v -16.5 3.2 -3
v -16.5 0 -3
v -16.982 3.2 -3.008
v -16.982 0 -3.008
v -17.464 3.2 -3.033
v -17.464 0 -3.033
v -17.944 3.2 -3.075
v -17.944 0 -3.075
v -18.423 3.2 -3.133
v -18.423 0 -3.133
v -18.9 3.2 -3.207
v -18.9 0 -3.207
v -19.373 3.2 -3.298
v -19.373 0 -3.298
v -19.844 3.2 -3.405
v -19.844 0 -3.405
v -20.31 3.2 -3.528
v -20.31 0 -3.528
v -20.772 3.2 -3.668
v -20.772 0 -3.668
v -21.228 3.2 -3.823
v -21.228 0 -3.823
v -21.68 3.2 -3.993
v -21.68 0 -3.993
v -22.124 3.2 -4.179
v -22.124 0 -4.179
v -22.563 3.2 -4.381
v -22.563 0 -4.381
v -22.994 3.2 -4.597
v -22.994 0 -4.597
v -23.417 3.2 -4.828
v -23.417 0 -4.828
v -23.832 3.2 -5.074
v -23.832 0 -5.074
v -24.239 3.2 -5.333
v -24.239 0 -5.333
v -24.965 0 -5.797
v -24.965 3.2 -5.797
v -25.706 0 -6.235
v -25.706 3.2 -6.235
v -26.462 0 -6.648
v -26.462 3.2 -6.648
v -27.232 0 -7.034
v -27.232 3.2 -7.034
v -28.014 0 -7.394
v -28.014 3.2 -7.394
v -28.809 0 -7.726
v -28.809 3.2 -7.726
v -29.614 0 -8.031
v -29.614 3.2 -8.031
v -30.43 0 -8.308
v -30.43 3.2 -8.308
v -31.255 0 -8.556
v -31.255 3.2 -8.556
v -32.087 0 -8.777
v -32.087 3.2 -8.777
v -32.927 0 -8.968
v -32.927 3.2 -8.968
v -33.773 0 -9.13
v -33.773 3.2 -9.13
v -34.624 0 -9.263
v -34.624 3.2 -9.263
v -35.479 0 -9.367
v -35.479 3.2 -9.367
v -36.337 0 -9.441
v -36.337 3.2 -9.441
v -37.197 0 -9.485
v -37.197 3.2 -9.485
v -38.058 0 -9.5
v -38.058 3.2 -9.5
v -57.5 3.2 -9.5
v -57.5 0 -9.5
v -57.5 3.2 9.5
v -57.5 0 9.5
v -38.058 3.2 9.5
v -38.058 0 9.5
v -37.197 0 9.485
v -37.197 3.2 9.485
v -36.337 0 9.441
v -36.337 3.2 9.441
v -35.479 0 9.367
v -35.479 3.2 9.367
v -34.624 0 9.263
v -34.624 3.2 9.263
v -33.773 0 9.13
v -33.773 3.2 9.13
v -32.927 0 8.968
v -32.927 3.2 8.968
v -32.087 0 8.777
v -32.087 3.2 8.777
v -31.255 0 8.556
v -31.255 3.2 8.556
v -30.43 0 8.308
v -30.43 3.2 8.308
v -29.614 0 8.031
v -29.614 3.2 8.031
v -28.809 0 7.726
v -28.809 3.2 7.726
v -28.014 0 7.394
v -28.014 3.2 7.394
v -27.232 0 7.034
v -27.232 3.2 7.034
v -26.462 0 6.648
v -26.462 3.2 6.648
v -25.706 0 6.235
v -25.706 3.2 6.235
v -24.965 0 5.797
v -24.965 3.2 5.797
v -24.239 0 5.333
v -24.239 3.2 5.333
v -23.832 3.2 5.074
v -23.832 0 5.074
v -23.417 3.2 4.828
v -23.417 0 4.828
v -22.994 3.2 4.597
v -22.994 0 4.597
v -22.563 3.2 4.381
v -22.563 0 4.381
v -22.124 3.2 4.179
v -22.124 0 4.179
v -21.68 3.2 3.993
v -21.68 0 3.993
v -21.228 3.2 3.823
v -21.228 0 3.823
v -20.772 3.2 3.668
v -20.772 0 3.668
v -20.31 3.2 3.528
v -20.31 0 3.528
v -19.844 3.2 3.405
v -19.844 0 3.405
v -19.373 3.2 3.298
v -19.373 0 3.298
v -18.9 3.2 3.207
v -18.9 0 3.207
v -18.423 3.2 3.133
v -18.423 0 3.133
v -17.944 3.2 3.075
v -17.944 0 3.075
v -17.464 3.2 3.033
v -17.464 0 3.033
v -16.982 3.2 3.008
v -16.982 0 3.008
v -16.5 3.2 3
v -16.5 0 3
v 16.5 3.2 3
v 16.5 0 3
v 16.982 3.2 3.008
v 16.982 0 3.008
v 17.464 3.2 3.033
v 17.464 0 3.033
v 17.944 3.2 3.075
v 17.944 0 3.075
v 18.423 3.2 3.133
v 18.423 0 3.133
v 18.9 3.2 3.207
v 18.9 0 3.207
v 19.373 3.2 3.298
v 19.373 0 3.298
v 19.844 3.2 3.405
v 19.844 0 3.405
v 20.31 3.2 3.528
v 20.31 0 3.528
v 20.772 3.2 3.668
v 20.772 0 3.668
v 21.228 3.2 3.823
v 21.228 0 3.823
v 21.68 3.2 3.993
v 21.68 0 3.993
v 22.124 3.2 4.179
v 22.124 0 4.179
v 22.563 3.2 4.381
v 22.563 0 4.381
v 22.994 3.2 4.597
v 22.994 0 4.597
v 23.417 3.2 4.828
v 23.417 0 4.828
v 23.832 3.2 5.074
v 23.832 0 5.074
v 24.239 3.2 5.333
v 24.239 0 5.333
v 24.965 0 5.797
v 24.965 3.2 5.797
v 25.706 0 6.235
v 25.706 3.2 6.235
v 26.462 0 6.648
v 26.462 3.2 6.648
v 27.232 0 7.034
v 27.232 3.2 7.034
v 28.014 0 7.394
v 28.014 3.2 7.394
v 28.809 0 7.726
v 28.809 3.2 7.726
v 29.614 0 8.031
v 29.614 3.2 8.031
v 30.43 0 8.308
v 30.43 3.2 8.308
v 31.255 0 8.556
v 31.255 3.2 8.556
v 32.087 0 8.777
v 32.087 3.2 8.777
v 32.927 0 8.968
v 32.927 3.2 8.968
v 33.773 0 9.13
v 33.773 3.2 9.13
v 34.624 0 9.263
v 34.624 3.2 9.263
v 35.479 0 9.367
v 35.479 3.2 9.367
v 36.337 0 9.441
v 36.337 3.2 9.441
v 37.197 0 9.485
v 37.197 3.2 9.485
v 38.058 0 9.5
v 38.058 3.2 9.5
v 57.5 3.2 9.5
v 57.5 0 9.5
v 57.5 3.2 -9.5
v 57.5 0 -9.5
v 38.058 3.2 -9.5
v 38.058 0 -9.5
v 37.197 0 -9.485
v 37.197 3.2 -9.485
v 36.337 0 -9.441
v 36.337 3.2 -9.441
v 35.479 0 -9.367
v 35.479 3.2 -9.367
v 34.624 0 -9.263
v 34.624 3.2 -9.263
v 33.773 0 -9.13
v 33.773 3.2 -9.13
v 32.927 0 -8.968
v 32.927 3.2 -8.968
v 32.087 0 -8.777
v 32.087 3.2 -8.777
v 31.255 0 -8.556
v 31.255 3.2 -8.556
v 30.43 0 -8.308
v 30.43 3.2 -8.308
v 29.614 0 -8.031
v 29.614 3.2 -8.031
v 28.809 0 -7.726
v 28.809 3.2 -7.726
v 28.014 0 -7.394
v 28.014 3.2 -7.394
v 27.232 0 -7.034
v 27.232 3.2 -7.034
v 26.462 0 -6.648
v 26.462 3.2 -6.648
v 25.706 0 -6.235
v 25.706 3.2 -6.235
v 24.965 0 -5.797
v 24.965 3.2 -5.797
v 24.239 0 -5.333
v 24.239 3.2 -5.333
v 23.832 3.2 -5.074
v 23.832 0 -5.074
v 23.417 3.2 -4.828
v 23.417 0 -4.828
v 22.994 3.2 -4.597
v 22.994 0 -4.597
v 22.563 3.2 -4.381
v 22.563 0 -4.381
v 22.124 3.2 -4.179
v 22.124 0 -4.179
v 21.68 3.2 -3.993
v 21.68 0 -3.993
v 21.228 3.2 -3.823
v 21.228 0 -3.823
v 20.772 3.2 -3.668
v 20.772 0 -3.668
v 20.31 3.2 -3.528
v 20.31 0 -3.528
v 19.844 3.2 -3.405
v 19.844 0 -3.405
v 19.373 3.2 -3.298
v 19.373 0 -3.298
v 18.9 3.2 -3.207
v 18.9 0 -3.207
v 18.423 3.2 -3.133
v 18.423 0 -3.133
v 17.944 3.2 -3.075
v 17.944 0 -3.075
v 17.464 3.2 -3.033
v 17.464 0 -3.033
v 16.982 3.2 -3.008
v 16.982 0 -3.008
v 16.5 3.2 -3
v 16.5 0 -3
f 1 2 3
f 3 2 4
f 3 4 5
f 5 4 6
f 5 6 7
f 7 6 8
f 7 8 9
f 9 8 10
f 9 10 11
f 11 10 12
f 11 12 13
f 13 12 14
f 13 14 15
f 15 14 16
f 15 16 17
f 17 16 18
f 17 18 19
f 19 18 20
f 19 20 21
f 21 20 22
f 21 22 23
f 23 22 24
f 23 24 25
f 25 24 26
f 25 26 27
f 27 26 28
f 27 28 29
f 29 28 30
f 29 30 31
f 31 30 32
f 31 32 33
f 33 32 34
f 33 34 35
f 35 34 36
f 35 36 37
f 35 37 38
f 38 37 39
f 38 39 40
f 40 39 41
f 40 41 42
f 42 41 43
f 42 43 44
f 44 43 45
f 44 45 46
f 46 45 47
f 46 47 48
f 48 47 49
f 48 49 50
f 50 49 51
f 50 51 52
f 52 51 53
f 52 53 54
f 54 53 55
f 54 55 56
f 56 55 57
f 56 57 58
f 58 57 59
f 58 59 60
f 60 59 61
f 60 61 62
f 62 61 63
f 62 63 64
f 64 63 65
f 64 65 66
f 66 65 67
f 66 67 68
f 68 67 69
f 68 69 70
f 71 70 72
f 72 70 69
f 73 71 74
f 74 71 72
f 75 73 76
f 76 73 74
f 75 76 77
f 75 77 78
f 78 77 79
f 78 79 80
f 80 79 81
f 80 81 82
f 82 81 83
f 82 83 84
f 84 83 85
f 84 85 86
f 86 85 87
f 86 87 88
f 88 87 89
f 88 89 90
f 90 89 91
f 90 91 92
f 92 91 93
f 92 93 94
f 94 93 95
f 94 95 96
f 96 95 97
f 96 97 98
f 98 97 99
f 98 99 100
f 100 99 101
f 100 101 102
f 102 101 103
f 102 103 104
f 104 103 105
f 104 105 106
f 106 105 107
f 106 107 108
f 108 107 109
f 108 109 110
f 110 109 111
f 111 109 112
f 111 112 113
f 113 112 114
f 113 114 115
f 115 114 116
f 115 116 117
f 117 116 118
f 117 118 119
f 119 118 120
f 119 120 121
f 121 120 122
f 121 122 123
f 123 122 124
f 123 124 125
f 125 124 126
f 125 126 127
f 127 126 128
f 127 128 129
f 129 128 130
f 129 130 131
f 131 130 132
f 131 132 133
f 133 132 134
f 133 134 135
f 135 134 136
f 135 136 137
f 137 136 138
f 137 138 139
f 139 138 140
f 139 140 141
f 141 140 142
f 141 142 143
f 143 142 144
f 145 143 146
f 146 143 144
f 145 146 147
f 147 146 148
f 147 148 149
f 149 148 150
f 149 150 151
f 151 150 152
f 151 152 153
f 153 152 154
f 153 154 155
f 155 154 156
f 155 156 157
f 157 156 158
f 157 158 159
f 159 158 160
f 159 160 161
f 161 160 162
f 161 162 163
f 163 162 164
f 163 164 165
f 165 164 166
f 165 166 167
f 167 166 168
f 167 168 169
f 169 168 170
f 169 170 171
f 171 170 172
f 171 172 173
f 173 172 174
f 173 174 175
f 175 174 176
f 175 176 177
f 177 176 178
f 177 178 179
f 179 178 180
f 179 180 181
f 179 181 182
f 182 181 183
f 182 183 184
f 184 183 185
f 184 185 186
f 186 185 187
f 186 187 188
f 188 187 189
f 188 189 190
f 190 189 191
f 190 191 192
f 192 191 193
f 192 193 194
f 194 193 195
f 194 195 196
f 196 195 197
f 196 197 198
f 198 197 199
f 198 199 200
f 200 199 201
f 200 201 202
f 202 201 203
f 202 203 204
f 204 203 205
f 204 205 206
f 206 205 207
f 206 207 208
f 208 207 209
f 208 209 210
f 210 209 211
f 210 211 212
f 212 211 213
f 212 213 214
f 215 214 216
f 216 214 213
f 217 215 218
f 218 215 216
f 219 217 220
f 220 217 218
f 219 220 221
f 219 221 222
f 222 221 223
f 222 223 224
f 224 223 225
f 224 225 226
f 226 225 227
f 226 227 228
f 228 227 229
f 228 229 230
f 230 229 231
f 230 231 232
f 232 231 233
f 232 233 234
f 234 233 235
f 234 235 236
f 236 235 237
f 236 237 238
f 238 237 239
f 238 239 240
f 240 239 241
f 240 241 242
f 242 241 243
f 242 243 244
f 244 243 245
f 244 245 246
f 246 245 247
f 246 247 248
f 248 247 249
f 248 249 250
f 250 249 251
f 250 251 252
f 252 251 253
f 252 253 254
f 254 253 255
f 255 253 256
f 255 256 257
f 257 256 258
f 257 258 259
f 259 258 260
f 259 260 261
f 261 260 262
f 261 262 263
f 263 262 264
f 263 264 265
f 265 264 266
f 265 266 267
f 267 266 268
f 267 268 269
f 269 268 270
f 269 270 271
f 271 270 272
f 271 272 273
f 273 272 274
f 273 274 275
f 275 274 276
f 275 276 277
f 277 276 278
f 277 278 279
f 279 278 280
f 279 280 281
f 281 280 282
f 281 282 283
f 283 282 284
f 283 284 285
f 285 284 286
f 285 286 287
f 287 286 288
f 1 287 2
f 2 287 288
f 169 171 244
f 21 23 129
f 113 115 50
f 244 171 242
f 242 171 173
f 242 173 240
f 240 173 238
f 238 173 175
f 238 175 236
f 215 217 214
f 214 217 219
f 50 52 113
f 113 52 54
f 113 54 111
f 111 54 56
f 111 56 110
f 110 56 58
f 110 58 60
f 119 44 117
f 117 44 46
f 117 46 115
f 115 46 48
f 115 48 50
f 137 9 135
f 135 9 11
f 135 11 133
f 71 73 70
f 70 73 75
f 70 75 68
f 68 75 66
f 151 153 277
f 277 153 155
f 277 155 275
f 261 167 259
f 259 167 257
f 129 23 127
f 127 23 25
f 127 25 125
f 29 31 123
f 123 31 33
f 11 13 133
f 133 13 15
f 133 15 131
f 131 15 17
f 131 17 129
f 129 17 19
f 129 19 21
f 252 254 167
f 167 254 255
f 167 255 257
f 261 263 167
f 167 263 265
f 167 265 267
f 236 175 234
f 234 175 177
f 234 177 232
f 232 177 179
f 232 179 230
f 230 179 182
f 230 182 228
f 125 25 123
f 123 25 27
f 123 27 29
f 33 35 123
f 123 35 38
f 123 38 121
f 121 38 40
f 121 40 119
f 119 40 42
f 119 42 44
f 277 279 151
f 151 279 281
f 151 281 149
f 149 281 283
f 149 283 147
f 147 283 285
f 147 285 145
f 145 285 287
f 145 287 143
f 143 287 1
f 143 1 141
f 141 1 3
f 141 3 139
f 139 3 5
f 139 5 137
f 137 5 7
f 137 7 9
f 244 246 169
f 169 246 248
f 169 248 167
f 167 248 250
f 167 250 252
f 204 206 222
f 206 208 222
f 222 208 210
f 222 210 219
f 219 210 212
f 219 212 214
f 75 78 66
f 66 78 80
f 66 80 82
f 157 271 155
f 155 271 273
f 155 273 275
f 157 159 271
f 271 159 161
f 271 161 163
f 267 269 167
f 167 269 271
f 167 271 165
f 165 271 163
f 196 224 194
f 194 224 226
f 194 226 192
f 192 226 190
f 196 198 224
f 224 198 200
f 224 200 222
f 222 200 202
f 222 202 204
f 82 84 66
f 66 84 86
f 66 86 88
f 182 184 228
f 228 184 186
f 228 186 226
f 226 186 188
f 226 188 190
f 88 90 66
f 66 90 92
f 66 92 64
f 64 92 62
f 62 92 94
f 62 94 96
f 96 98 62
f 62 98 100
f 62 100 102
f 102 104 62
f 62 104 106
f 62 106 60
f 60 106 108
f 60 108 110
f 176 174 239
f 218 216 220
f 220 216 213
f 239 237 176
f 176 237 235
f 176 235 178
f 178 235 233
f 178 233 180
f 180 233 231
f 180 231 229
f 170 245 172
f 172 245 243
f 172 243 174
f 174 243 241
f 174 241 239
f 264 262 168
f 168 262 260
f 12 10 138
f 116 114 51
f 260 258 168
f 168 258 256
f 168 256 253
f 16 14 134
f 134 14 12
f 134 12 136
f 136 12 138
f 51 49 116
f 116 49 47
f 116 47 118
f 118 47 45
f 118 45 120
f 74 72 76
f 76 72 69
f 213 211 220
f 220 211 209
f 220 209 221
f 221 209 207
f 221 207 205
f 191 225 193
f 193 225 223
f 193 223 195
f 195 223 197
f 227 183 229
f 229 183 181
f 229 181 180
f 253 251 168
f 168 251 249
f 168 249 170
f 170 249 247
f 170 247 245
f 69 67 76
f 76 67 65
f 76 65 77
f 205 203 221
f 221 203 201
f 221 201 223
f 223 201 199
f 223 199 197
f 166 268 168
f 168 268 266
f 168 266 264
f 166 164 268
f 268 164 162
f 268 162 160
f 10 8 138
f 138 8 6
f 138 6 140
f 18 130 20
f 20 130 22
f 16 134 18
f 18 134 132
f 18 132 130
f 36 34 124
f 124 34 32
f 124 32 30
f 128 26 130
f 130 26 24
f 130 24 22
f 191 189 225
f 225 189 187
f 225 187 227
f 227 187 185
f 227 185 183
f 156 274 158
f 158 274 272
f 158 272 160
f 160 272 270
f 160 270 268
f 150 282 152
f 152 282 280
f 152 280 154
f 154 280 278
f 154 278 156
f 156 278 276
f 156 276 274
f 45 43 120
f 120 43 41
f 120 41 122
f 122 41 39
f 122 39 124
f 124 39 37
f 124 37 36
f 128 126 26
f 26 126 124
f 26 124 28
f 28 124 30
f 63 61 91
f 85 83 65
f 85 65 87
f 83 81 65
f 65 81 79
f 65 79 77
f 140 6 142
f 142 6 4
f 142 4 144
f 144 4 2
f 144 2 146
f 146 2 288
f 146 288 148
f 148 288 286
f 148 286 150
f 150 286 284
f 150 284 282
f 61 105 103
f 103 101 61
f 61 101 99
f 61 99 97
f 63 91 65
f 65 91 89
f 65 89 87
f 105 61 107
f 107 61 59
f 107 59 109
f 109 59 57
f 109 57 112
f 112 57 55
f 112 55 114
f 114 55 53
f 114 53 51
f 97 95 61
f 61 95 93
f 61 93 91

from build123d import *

# Parameters (mm, degrees)
SALIENTE_EXTRUIR2_DEPTH = 3.2


with BuildPart() as part:
    # Croquis1 → Saliente-Extruir2 (new body)
    with BuildSketch(Plane(origin=(0, 0, 0), x_dir=(1, 0, 0), z_dir=(0, 1, 0))):
        with BuildLine():
            Line((-16.5, 3), (16.5, 3))
            ThreePointArc((16.5, 3), (20.541451884, 3.596020491), (24.238791177, 5.333333333))
            ThreePointArc((24.238791177, 5.333333333), (30.841182772, 8.435677694), (38.058061137, 9.5))
            Line((38.058061137, 9.5), (57.5, 9.5))
            Line((57.5, 9.5), (57.5, -9.5))
            Line((57.5, -9.5), (38.058061137, -9.5))
            ThreePointArc((38.058061137, -9.5), (30.841182772, -8.435677694), (24.238791177, -5.333333333))
            ThreePointArc((24.238791177, -5.333333333), (20.541451884, -3.596020491), (16.5, -3))
            Line((16.5, -3), (-16.5, -3))
            ThreePointArc((-16.5, -3), (-20.541451884, -3.596020491), (-24.238791177, -5.333333333))
            ThreePointArc((-24.238791177, -5.333333333), (-30.841182772, -8.435677694), (-38.058061137, -9.5))
            Line((-38.058061137, -9.5), (-57.5, -9.5))
            Line((-57.5, -9.5), (-57.5, 9.5))
            Line((-57.5, 9.5), (-38.058061137, 9.5))
            ThreePointArc((-38.058061137, 9.5), (-30.841182772, 8.435677694), (-24.238791177, 5.333333333))
            ThreePointArc((-24.238791177, 5.333333333), (-20.541451884, 3.596020491), (-16.5, 3))
        make_face()
    extrude(amount=SALIENTE_EXTRUIR2_DEPTH)


solid = part.part
